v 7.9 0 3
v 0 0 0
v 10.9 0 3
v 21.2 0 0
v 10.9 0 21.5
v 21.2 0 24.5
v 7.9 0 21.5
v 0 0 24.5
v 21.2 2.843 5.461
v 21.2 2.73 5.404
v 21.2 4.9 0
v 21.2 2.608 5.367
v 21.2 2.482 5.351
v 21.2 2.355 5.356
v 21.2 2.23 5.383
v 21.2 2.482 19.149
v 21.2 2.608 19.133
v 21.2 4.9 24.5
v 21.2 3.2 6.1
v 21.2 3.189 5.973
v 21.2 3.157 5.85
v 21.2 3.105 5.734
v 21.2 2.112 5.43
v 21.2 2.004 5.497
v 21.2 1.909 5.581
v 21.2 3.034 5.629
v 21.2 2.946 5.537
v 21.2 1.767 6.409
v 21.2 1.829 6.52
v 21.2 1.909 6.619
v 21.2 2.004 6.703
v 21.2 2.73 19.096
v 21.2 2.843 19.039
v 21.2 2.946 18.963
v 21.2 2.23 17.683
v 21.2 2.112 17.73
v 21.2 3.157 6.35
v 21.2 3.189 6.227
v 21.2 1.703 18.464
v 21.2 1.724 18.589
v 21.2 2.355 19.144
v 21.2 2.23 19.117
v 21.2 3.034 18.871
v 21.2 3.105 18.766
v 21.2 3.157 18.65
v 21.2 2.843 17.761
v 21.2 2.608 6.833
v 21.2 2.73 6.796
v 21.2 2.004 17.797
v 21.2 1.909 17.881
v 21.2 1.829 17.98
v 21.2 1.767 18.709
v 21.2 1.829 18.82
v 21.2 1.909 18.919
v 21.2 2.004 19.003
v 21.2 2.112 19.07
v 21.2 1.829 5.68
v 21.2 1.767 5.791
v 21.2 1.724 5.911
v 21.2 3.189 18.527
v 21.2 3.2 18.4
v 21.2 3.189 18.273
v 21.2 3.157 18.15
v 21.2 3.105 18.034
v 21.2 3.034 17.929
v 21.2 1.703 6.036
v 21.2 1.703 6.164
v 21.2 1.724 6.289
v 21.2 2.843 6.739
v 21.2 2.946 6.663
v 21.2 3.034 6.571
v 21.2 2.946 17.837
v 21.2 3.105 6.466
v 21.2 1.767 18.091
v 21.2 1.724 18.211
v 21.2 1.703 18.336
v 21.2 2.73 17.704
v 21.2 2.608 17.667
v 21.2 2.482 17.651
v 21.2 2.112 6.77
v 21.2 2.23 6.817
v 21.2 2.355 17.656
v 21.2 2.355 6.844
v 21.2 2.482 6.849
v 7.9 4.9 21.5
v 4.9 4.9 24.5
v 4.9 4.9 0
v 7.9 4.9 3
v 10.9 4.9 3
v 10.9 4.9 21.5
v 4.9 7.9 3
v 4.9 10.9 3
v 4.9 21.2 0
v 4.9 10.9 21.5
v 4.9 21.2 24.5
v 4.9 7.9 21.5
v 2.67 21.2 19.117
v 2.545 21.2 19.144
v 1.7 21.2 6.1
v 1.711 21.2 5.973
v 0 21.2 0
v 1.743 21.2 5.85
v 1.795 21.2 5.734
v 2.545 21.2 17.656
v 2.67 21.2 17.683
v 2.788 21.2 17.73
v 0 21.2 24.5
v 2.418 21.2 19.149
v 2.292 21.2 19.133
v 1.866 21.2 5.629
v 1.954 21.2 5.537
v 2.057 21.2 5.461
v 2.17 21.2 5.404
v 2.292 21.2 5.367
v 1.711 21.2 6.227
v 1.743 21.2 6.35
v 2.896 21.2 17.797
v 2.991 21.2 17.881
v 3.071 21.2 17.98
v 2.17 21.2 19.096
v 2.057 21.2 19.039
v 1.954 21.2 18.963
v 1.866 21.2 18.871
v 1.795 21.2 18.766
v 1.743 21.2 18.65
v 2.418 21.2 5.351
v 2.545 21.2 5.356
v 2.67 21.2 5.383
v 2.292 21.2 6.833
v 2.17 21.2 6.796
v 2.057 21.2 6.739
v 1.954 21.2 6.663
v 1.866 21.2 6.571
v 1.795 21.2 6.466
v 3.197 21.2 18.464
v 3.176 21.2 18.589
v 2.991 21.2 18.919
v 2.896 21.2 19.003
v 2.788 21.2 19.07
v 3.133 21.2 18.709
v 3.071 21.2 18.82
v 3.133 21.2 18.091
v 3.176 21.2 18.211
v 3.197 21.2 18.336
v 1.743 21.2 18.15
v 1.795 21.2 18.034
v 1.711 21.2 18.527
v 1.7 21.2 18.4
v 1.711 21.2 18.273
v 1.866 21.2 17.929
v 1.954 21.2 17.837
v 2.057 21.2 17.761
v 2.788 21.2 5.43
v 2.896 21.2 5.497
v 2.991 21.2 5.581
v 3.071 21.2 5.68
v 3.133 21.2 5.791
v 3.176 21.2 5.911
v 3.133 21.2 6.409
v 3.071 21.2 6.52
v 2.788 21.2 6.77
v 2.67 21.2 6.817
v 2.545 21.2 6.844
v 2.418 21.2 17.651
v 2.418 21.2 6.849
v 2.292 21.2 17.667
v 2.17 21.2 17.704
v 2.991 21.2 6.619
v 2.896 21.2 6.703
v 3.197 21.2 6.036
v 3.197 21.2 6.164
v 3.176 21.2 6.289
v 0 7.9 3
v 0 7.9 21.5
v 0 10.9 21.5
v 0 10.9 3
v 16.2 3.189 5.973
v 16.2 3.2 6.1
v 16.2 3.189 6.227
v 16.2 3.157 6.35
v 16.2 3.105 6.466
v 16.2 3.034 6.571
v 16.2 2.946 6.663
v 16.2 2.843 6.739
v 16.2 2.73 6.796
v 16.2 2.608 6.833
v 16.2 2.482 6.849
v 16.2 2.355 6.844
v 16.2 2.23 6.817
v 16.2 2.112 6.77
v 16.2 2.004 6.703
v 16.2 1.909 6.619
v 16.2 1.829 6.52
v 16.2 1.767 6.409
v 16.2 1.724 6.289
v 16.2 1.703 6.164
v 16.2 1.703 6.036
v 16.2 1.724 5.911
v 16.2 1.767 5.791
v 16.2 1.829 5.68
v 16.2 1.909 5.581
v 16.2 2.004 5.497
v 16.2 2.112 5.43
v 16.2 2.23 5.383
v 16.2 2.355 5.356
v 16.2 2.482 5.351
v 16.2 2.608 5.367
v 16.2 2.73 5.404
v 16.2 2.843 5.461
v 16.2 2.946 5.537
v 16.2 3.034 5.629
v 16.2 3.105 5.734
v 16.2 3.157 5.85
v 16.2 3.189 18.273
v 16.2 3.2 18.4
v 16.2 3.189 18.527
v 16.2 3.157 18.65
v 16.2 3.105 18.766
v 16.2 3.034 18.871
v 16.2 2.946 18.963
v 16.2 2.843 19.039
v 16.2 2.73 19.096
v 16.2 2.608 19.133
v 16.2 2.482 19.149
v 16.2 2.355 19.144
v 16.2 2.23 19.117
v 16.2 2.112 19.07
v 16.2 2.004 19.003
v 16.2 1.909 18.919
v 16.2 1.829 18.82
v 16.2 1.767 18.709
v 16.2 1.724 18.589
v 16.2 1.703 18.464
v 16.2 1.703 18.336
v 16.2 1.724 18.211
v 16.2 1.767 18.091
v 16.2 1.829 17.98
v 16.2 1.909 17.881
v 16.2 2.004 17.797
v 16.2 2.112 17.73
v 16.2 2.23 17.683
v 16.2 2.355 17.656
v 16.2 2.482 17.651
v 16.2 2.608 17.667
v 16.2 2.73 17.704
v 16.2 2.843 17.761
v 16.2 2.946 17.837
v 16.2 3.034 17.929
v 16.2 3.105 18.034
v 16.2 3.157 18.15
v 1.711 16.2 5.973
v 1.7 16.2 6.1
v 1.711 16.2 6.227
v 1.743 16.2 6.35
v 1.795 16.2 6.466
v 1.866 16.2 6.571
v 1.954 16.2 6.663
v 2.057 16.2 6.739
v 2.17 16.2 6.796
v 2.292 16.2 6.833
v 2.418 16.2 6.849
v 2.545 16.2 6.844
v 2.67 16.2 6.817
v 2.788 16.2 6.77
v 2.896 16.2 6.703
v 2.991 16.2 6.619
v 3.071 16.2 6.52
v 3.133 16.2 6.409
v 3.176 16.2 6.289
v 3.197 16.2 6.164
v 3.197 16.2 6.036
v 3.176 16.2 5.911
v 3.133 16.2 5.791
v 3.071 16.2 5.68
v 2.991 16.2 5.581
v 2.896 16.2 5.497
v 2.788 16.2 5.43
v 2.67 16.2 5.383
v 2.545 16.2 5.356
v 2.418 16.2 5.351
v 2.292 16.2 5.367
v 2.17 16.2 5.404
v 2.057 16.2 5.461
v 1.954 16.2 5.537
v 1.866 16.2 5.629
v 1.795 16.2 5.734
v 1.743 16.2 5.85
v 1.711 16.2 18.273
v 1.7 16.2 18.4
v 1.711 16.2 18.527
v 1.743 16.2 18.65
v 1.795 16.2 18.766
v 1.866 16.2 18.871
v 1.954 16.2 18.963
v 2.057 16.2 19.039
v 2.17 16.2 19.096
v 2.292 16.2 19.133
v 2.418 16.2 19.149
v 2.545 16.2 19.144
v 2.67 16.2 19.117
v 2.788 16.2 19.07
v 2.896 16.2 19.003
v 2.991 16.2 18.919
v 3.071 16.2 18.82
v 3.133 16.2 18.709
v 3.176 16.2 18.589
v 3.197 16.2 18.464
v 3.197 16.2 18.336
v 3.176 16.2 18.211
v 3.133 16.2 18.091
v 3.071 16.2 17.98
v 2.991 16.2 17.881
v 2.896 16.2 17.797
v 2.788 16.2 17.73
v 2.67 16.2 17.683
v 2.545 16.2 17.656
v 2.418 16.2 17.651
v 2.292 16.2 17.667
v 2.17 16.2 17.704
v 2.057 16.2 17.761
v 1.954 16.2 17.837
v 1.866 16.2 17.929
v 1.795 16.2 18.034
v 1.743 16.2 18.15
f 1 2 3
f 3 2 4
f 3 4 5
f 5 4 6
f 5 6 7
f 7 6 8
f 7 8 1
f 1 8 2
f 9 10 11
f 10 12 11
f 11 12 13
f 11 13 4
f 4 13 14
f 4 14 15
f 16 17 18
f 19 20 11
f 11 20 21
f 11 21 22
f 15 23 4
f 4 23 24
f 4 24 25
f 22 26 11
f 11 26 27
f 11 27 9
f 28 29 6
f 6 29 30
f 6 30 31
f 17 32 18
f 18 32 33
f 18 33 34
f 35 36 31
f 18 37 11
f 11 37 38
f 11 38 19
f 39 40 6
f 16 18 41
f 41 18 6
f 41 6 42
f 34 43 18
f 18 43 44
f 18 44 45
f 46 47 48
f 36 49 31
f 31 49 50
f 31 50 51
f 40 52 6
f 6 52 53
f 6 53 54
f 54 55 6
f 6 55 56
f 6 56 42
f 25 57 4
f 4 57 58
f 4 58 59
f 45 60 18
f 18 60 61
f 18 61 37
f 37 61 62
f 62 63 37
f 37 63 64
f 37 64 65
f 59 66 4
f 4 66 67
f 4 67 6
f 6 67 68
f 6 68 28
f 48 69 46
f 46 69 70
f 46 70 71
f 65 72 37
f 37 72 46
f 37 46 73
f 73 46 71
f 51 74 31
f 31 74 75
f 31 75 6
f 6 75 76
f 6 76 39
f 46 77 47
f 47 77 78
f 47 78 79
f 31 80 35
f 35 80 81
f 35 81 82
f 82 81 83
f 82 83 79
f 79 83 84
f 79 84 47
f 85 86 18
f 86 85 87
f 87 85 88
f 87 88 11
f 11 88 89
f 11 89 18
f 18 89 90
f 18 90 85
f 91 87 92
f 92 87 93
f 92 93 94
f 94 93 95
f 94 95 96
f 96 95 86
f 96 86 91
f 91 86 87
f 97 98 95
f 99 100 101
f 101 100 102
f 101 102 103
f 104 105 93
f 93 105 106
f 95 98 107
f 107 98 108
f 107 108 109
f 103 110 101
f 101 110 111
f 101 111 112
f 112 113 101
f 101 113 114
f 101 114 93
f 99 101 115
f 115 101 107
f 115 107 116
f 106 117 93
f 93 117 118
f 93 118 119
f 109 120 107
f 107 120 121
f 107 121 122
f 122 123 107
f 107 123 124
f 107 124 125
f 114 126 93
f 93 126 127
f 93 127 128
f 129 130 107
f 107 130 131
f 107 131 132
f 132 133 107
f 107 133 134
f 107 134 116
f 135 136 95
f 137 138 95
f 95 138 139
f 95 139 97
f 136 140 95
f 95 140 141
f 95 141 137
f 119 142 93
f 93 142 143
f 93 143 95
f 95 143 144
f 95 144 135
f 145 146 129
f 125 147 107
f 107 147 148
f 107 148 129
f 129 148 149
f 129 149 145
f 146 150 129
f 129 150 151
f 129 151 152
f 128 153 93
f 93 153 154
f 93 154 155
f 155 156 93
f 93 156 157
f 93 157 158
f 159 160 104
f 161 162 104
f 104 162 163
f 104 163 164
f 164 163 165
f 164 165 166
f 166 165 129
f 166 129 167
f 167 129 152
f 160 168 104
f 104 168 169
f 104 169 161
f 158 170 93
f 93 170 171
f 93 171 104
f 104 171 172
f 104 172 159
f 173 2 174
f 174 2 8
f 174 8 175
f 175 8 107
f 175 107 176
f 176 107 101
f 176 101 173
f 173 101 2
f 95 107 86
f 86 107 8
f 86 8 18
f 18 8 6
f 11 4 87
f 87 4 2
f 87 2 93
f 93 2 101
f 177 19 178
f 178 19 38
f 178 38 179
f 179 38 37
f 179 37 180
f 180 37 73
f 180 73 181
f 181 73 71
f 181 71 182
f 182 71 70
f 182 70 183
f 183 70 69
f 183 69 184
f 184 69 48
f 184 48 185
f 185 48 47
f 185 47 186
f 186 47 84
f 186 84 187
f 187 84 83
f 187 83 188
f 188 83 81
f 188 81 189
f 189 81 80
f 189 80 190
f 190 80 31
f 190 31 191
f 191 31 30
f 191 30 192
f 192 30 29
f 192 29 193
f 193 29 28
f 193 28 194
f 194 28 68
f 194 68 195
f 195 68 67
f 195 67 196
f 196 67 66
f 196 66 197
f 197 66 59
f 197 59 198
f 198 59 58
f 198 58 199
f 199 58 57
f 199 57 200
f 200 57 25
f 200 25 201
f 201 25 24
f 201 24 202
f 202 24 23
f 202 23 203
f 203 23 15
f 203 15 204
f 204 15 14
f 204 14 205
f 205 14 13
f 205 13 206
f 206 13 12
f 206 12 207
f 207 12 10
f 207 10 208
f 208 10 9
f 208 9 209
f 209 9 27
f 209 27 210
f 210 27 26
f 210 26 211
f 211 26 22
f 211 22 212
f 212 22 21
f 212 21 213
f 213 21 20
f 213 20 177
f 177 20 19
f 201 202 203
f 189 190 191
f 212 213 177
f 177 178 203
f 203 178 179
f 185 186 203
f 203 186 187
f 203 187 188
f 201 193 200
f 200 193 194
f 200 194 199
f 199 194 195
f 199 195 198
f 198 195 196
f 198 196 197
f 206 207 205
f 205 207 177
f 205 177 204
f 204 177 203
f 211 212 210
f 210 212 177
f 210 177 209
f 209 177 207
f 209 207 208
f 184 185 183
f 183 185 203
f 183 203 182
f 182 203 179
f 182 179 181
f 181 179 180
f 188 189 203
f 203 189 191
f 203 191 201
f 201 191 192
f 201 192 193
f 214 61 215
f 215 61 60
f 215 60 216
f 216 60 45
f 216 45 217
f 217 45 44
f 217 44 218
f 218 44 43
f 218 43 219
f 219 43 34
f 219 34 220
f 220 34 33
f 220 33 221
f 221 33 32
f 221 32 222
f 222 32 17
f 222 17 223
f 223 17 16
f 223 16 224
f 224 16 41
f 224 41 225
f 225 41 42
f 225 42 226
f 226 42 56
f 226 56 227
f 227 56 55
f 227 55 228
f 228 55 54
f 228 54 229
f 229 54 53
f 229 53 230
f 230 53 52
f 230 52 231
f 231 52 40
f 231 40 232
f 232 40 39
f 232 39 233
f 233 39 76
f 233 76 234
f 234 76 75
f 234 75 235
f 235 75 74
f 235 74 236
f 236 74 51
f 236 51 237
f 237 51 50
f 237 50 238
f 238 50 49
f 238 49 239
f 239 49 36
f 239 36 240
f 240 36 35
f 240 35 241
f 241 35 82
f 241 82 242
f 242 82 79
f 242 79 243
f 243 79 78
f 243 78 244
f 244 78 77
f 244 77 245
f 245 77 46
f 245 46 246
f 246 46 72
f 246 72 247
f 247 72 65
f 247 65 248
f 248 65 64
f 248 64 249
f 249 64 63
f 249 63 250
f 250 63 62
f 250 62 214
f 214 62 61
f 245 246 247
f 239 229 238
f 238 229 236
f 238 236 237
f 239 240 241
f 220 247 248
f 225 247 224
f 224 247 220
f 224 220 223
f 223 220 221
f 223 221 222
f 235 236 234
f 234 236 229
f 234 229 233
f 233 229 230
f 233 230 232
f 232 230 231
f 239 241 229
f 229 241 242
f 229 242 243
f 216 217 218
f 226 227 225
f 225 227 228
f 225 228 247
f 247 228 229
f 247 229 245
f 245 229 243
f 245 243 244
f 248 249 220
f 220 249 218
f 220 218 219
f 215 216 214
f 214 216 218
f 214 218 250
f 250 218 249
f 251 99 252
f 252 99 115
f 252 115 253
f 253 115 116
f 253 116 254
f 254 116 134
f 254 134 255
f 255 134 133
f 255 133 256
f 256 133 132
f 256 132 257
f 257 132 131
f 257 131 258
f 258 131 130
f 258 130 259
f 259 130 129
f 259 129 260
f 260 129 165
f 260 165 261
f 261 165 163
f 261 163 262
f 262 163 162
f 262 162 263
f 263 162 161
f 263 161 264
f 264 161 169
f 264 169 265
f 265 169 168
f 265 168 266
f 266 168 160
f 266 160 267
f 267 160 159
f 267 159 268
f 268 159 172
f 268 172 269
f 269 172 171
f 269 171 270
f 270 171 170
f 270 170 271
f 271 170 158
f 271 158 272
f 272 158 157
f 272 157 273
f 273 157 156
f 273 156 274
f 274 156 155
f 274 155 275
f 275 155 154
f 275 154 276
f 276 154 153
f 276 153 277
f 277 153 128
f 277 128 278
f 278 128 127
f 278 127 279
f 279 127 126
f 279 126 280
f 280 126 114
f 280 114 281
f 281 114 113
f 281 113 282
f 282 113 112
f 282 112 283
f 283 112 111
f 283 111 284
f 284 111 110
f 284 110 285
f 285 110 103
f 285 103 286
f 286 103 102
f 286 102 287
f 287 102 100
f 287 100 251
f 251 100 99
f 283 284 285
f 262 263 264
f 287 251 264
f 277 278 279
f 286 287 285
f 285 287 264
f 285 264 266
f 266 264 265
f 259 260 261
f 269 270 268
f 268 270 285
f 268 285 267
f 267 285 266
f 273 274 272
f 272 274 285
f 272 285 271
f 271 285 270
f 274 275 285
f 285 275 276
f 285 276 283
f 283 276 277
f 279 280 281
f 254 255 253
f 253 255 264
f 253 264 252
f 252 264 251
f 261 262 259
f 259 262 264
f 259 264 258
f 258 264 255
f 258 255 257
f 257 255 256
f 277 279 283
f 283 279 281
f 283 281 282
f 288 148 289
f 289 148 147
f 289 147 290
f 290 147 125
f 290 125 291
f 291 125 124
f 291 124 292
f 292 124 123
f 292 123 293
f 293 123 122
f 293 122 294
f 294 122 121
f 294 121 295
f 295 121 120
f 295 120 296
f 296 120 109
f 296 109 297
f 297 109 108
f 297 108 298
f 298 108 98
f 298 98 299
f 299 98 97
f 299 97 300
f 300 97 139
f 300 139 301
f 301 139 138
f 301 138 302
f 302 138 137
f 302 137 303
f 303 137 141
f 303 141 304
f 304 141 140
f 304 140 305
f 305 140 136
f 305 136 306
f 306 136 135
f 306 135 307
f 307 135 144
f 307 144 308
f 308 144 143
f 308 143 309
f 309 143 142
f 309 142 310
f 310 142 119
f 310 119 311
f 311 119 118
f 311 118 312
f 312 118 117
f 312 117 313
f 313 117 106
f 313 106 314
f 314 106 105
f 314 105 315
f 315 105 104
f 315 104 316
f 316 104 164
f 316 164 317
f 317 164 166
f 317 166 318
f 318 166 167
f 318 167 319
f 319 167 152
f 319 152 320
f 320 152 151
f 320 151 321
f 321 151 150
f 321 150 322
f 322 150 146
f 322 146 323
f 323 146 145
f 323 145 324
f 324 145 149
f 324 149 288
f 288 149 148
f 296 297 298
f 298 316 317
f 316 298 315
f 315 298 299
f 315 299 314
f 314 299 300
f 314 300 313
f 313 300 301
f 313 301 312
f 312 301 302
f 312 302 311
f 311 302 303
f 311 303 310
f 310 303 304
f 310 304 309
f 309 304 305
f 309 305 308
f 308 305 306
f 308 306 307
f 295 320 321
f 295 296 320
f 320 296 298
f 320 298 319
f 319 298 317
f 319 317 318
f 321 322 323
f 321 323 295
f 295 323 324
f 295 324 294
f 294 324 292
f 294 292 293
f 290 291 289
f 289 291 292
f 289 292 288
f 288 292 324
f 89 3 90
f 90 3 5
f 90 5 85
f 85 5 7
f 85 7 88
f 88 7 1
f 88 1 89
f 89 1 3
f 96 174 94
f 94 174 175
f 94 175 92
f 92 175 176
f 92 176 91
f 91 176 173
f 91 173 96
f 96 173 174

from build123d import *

# Parameters (mm, degrees)
EXTRUDE_1_DEPTH     = 24.5
SKETCH_2_R          = 0.75
CUT_EXTRUDE_1_DEPTH = 5
SKETCH_3_R          = 0.75
CUT_EXTRUDE_2_DEPTH = 5
SKETCH_4_W          = 3
SKETCH_4_H          = 18.5
CUT_EXTRUDE_3_DEPTH = 5
SKETCH_5_W          = 18.5
SKETCH_5_H          = 3
CUT_EXTRUDE_4_DEPTH = 5


with BuildPart() as part:
    # 草圖1 → 填料-伸長1 (new body)
    with BuildSketch(Plane.XY):
        Polygon((0, 0), (0, 21.2), (4.9, 21.2), (4.9, 4.9), (21.2, 4.9), (21.2, 0), align=None)
    extrude(amount=EXTRUDE_1_DEPTH)

    # 草圖2 → 除料-伸長1 (cut)
    with BuildSketch(Plane(origin=(21.2, 0, 0), x_dir=(0, 0, -1), z_dir=(1, 0, 0))):
        with Locations(Location((-6.1, 2.45, 0), (0, 0, 90))):
            Circle(SKETCH_2_R)
        with Locations(Location((-18.4, 2.45, 0), (0, 0, 90))):
            Circle(SKETCH_2_R)
    extrude(amount=-CUT_EXTRUDE_1_DEPTH, mode=Mode.SUBTRACT)

    # 草圖3 → 除料-伸長2 (cut)
    with BuildSketch(Plane(origin=(0, 21.2, 0), x_dir=(1, 0, 0), z_dir=(0, 1, 0))):
        with Locations(Location((2.45, -6.1, 0), (0, 0, 180))):
            Circle(SKETCH_3_R)
        with Locations(Location((2.45, -18.4, 0), (0, 0, 180))):
            Circle(SKETCH_3_R)
    extrude(amount=-CUT_EXTRUDE_2_DEPTH, mode=Mode.SUBTRACT)

    # 草圖4 → 除料-伸長3 (cut)
    with BuildSketch(Plane(origin=(0, 4.9, 0), x_dir=(-1, 0, 0), z_dir=(0, 1, 0))):
        with Locations((-9.4, 12.25)):
            Rectangle(SKETCH_4_W, SKETCH_4_H)
    extrude(amount=-CUT_EXTRUDE_3_DEPTH, mode=Mode.SUBTRACT)

    # 草圖5 → 除料-伸長4 (cut)
    with BuildSketch(Plane(origin=(4.9, 0, 0), x_dir=(0, 0, -1), z_dir=(1, 0, 0))):
        with Locations((-12.25, 9.4)):
            Rectangle(SKETCH_5_W, SKETCH_5_H)
    extrude(amount=-CUT_EXTRUDE_4_DEPTH, mode=Mode.SUBTRACT)


solid = part.part
